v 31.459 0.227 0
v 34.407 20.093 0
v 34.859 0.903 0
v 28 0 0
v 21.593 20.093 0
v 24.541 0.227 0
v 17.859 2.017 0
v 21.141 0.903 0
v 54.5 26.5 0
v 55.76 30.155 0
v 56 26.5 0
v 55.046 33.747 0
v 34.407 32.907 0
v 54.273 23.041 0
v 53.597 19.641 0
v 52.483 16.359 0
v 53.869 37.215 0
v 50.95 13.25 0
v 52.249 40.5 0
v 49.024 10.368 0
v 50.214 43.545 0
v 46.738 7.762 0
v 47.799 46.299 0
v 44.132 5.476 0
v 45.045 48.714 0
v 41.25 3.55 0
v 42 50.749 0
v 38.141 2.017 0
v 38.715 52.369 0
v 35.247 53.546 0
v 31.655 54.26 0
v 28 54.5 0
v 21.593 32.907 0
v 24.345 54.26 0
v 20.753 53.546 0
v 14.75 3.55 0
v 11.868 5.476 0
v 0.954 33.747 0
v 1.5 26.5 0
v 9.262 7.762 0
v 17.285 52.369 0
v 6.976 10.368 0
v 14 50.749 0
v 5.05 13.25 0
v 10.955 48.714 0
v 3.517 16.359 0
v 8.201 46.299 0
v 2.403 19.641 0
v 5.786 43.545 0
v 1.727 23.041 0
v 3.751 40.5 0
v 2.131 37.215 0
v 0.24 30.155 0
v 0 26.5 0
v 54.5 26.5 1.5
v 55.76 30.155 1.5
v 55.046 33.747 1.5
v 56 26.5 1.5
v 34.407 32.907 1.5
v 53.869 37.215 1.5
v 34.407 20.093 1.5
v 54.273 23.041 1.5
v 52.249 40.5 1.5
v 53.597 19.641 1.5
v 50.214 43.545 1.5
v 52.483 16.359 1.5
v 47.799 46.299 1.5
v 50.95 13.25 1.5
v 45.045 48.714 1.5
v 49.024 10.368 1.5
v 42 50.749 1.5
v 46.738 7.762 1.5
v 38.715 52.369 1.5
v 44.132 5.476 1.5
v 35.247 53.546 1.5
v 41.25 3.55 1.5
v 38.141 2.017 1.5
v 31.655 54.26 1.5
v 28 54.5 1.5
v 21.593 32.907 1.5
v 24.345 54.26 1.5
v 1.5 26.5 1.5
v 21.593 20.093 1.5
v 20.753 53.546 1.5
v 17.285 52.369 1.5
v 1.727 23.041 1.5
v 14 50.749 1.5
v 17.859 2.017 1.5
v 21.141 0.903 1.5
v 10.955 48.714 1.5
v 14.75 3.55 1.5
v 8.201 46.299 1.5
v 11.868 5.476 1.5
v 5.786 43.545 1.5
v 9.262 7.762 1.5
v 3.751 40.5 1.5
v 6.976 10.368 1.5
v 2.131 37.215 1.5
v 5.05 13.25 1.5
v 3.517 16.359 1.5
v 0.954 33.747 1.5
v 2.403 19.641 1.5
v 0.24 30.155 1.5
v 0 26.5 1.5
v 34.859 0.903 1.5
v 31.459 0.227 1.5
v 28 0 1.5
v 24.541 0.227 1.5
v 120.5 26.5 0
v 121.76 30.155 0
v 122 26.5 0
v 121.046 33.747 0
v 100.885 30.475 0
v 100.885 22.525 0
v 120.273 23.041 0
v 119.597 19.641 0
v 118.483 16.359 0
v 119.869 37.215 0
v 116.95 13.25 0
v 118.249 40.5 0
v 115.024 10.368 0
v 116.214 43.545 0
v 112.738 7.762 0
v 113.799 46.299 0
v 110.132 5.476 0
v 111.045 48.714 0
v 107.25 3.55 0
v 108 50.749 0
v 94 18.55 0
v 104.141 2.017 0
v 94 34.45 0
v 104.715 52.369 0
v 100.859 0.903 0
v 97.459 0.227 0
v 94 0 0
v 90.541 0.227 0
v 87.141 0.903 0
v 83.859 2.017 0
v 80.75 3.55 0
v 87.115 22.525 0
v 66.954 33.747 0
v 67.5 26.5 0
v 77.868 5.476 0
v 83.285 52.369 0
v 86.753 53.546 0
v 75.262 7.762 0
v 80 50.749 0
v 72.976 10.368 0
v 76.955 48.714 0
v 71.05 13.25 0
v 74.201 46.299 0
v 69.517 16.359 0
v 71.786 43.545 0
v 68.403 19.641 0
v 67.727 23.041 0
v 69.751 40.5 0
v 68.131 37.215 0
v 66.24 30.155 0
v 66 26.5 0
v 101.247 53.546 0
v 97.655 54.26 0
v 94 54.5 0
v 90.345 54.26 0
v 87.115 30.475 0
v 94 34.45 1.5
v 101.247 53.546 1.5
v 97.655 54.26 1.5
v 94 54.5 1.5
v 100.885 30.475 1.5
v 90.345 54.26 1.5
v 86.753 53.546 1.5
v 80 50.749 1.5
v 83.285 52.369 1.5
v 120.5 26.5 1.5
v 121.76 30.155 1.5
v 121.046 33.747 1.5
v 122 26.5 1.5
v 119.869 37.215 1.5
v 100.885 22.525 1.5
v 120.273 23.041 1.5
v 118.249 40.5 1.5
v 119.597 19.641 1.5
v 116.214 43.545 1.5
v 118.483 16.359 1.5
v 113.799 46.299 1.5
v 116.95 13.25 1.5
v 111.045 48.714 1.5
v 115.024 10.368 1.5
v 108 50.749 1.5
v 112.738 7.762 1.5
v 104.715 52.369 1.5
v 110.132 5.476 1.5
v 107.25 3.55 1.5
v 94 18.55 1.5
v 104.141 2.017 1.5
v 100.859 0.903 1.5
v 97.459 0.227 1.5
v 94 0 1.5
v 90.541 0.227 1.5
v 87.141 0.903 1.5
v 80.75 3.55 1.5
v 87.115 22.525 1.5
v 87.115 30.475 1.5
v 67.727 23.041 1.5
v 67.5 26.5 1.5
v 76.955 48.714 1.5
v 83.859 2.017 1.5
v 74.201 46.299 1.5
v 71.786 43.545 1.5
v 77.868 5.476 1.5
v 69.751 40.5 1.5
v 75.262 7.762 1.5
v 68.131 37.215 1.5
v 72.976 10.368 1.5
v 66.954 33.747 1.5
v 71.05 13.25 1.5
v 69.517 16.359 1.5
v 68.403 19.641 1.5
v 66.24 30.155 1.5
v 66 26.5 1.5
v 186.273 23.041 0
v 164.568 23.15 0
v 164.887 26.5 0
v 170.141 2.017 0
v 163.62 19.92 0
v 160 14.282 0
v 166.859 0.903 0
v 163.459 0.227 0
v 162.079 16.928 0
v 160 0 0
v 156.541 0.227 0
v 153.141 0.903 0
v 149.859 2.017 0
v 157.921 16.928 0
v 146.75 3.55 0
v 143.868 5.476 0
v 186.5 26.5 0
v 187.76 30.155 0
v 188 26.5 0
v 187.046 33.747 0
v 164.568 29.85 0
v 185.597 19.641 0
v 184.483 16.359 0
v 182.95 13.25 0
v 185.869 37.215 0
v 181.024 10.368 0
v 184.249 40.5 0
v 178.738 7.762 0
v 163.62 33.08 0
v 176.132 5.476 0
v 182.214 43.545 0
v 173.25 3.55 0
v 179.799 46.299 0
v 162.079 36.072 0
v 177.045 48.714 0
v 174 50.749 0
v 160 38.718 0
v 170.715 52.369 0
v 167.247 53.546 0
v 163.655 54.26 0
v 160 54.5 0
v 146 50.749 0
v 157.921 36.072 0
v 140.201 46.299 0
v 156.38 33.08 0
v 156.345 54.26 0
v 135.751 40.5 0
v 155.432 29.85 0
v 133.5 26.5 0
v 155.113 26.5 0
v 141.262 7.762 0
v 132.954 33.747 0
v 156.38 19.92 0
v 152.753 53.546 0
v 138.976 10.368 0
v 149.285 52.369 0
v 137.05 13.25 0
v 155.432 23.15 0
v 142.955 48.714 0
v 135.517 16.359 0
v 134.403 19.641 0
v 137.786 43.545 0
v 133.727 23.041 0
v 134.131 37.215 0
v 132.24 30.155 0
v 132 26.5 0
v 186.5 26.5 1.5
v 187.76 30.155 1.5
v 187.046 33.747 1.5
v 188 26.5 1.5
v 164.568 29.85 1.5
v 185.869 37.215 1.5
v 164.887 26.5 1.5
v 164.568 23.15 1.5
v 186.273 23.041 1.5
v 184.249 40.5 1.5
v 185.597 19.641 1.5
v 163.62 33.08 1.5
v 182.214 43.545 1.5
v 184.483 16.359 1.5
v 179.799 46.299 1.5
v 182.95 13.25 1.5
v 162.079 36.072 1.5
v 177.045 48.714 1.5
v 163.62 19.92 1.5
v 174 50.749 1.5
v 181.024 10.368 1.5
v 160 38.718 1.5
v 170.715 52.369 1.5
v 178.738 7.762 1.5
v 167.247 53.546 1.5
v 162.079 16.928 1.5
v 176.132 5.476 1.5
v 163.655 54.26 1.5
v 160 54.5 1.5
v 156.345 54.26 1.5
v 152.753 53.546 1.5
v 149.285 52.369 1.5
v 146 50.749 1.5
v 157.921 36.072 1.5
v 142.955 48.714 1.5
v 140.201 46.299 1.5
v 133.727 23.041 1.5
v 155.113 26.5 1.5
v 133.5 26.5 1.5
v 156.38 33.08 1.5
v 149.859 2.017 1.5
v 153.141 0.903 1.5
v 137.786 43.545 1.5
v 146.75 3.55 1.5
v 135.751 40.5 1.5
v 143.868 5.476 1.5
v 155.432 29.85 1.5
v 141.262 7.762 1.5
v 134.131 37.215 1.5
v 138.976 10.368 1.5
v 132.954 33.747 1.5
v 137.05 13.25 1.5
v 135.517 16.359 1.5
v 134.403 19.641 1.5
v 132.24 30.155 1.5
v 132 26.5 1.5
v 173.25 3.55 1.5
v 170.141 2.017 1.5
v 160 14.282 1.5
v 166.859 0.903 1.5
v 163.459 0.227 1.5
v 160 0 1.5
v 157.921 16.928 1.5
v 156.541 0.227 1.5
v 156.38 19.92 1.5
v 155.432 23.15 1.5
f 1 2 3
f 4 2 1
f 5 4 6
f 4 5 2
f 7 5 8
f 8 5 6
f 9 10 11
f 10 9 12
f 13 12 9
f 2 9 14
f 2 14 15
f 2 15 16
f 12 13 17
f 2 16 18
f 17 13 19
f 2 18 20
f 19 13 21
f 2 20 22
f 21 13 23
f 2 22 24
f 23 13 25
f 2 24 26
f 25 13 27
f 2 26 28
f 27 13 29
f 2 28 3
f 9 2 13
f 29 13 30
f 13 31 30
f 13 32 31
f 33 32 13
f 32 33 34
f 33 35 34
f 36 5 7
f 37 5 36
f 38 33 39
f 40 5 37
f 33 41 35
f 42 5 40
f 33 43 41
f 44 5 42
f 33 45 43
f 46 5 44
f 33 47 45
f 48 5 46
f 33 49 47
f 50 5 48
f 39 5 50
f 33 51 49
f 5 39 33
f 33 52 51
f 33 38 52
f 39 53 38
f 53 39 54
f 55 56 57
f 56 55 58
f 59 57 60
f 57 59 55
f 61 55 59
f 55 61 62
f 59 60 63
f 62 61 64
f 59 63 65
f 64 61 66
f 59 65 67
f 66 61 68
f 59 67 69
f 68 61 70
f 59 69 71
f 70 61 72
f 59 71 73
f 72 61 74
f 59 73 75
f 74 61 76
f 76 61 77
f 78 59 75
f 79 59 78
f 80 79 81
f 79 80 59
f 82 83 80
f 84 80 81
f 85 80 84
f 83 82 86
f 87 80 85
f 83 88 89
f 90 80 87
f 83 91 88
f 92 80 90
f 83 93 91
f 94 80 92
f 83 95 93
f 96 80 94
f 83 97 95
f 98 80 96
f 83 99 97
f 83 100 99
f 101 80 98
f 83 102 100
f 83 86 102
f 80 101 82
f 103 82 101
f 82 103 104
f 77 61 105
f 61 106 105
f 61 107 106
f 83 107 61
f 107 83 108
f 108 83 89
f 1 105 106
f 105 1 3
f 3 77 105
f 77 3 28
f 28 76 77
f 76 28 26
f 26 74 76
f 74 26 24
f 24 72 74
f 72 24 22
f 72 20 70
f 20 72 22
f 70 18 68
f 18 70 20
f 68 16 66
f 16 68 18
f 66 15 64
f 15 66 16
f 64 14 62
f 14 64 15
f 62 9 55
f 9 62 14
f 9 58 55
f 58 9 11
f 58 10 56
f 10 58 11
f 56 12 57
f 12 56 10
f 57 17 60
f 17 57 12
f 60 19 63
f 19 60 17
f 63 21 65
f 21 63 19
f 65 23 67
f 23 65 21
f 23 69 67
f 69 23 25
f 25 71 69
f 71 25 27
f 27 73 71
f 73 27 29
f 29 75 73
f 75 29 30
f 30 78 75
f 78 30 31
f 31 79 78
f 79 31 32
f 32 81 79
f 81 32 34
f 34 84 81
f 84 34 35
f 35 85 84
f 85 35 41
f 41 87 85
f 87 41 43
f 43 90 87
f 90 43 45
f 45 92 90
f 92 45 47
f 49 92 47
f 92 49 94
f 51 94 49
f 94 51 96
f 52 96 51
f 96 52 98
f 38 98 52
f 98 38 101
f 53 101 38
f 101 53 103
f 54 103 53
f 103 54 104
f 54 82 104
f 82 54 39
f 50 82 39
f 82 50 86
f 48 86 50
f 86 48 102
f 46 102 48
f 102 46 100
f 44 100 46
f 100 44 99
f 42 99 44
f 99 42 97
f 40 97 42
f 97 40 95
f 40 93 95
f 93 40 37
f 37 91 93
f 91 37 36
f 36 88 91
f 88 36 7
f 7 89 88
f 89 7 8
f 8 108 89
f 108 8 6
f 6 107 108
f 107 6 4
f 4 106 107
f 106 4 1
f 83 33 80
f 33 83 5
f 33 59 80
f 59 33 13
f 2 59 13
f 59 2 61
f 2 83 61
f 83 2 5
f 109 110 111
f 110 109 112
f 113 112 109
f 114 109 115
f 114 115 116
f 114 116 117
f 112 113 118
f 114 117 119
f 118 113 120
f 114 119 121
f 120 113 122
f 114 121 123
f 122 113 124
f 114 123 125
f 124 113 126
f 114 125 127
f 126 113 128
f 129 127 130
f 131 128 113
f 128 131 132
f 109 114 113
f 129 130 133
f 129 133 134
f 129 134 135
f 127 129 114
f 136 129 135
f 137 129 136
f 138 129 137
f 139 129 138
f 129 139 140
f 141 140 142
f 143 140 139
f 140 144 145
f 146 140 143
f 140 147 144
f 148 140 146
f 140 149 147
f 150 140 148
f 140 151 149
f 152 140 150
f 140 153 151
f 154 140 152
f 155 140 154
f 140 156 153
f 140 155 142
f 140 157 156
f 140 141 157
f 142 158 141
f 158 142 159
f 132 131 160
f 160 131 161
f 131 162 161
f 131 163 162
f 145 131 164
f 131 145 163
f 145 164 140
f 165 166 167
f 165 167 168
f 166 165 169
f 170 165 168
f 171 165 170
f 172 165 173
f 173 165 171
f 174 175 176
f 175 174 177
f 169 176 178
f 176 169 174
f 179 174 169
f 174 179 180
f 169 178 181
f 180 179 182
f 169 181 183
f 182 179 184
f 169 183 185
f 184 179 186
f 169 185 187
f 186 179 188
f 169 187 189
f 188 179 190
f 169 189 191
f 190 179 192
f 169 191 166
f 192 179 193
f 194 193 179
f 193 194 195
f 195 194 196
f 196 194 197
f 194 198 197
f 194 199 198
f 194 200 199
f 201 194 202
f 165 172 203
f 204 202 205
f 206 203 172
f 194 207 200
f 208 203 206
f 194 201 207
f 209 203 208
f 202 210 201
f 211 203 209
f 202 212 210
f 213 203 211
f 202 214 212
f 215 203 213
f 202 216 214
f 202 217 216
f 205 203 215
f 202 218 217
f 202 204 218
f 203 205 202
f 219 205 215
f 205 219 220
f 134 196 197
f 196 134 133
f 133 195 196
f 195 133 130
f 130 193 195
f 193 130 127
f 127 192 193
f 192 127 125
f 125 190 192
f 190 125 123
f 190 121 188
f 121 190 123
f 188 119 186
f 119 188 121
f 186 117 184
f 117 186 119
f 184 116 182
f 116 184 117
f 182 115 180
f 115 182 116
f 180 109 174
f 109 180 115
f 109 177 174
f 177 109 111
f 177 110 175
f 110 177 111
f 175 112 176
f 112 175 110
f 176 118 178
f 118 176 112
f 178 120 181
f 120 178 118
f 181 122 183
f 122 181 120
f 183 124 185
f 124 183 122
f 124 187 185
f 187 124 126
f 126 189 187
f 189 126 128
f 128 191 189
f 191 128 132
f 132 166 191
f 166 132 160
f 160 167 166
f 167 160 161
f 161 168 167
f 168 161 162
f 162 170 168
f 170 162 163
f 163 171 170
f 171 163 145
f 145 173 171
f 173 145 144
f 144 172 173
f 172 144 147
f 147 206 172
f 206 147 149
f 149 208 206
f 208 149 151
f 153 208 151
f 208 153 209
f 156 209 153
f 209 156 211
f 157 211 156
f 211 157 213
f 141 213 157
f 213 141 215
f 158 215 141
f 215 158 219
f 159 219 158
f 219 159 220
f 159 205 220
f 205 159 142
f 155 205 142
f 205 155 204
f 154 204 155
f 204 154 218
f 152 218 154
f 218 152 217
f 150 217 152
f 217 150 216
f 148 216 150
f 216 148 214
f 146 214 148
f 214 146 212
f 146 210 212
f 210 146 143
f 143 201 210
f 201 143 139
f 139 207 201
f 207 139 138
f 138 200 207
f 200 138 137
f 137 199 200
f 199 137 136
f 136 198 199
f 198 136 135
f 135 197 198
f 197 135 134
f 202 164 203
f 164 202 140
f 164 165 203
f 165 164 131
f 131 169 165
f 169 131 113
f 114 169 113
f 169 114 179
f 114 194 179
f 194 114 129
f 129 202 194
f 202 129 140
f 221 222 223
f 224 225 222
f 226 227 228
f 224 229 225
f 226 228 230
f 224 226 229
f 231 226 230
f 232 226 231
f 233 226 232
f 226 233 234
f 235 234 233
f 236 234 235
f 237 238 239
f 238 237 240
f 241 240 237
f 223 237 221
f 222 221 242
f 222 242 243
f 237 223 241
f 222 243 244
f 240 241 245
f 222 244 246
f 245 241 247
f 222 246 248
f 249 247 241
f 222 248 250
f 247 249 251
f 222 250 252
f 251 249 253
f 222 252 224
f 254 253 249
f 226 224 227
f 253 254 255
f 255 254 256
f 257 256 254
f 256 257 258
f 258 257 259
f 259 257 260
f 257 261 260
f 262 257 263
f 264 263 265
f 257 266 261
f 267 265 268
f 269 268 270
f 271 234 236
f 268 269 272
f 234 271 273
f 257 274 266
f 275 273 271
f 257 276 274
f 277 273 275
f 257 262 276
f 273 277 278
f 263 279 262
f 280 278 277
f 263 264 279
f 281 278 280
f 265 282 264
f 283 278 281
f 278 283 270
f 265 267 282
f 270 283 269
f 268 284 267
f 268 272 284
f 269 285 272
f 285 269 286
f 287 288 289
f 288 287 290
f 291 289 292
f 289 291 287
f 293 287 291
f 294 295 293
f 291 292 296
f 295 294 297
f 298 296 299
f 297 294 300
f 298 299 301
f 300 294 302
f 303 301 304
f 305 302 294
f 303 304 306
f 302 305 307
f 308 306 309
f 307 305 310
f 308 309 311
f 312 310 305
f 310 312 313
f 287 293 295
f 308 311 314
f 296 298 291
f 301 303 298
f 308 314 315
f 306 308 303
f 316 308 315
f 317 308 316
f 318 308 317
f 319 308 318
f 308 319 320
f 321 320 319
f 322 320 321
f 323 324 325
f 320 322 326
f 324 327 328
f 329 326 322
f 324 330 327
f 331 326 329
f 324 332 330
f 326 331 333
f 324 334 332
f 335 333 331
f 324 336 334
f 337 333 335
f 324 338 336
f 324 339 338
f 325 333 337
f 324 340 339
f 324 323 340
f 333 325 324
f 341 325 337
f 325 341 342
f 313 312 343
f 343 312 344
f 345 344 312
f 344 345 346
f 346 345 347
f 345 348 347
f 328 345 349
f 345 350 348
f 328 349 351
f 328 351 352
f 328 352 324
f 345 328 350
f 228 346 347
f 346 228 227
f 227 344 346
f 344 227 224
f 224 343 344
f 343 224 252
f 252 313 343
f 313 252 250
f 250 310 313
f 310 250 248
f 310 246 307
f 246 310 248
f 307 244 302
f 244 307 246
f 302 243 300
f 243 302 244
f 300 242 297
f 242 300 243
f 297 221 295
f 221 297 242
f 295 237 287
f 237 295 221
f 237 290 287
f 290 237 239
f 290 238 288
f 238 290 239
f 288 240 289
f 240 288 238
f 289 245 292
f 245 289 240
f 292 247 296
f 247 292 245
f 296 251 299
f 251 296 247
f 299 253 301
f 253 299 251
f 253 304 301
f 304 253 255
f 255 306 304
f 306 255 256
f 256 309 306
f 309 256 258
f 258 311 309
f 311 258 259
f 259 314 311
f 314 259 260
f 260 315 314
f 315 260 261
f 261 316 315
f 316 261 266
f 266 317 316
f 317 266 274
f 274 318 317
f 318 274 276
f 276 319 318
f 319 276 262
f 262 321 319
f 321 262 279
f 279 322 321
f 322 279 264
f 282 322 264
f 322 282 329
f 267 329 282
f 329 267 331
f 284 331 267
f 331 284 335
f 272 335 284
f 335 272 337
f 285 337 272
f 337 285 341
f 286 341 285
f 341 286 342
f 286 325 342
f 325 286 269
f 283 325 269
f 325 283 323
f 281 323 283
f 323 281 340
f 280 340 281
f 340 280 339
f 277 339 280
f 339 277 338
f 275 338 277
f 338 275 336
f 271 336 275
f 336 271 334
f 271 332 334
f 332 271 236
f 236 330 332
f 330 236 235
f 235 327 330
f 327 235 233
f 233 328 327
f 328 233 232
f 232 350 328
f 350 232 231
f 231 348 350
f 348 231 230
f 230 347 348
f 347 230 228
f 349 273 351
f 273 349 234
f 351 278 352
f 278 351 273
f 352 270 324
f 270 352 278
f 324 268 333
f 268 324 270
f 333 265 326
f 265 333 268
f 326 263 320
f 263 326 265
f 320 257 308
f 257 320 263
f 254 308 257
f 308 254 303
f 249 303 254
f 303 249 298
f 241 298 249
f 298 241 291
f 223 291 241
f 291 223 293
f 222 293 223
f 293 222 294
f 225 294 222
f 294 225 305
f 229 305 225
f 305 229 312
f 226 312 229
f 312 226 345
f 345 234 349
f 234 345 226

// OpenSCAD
// Generated by scadwright. Do not hand-edit —
// edit the Python source and regenerate.

$fn = 48;

union() {
    translate([28, 26.5, 6.15]) {
        // SquareStop
        //  equiv_area_circle_dia = 14.46  (input)
        //  inner_diameter        = 53  (input)
        //  outer_diameter        = 56  (input)
        //  spacing               = -5.4  (input)
        //  thk                   = 1.5  (input)
        //  slot_bottom           = spacing - thk / 2 = -6.15
        //  target_area           = pi * equiv_area_circle_dia ** 2 / 4 = 164.22
        //  side                  = equiv_area_circle_dia * sqrt(pi) / 2 = 12.8148
        color("red") {
            translate([0, 0, -6.15]) {
                linear_extrude(height=1.5, center=false) {
                    difference() {
                        union() {
                            // Sector
                            //  angles = [0, 180]  (input)
                            //  r      = 28  (input)
                            intersection() {
                                circle(r=28);
                                polygon(points=[[0, 0], [56, 0], [3.42901e-15, 56], [-56, 6.85802e-15]]);
                            }
                            // Sector
                            //  angles = [180, 360]  (input)
                            //  r      = 26.5  (input)
                            intersection() {
                                circle(r=26.5);
                                polygon(points=[[0, 0], [-53, 6.49063e-15], [-9.73594e-15, -53], [53, -1.29813e-14]]);
                            }
                        }
                        square([12.8148, 12.8148], center=true);
                    }
                }
            }
        }
    }

    translate([94, 26.5, 6.15]) {
        // HexStop
        //  equiv_area_circle_dia = 14.46  (input)
        //  inner_diameter        = 53  (input)
        //  outer_diameter        = 56  (input)
        //  spacing               = -5.4  (input)
        //  thk                   = 1.5  (input)
        //  slot_bottom           = spacing - thk / 2 = -6.15
        //  target_area           = pi * equiv_area_circle_dia ** 2 / 4 = 164.22
        //  hex_r                 = equiv_area_circle_dia * sqrt(pi / (6 * sqrt(3))) = 7.95037
        color("red") {
            translate([0, 0, -6.15]) {
                linear_extrude(height=1.5, center=false) {
                    difference() {
                        union() {
                            // Sector
                            //  angles = [0, 180]  (input)
                            //  r      = 28  (input)
                            intersection() {
                                circle(r=28);
                                polygon(points=[[0, 0], [56, 0], [3.42901e-15, 56], [-56, 6.85802e-15]]);
                            }
                            // Sector
                            //  angles = [180, 360]  (input)
                            //  r      = 26.5  (input)
                            intersection() {
                                circle(r=26.5);
                                polygon(points=[[0, 0], [-53, 6.49063e-15], [-9.73594e-15, -53], [53, -1.29813e-14]]);
                            }
                        }
                        rotate([0, 0, 30]) {
                            polygon(points=[[7.95037, 0], [3.97518, 6.88522], [-3.97518, 6.88522], [-7.95037, 9.73639e-16], [-3.97518, -6.88522], [3.97518, -6.88522]]);
                        }
                    }
                }
            }
        }
    }

    translate([160, 26.5, 6.15]) {
        // AlmondStop
        //  equiv_area_circle_dia = 14.46  (input)
        //  inner_diameter        = 53  (input)
        //  outer_diameter        = 56  (input)
        //  spacing               = -5.4  (input)
        //  thk                   = 1.5  (input)
        //  aspect                = 2.5  (default)
        //  slot_bottom           = spacing - thk / 2 = -6.15
        //  target_area           = pi * equiv_area_circle_dia ** 2 / 4 = 164.22
        //  almond_seg_r          = (aspect ** 2 + 1) / 2 = 3.625
        //  almond_half           = asin(2 * aspect / (aspect ** 2 + 1)) = 43.6028
        //  almond_area_unit      = almond_seg_r ** 2 * (radians(2 * almond_half) - sin(2 * almond_half)) = 6.87537
        //  sag                   = sqrt(target_area / almond_area_unit) = 4.88726
        //  chord_r               = aspect * sag = 12.2181
        color("red") {
            translate([0, 0, -6.15]) {
                linear_extrude(height=1.5, center=false) {
                    difference() {
                        union() {
                            // Sector
                            //  angles = [0, 180]  (input)
                            //  r      = 28  (input)
                            intersection() {
                                circle(r=28);
                                polygon(points=[[0, 0], [56, 0], [3.42901e-15, 56], [-56, 6.85802e-15]]);
                            }
                            // Sector
                            //  angles = [180, 360]  (input)
                            //  r      = 26.5  (input)
                            intersection() {
                                circle(r=26.5);
                                polygon(points=[[0, 0], [-53, 6.49063e-15], [-9.73594e-15, -53], [53, -1.29813e-14]]);
                            }
                        }
                        rotate([0, 0, 90]) {
                            polygon(points=[[12.2181, 1.77636e-15], [9.57162, 2.07906], [6.57967, 3.62013], [3.35029, 4.56759], [0, 4.88726], [-3.35029, 4.56759], [-6.57967, 3.62013], [-9.57162, 2.07906], [-12.2181, -1.77636e-15], [-9.57162, -2.07906], [-6.57967, -3.62013], [-3.35029, -4.56759], [0, -4.88726], [3.35029, -4.56759], [6.57967, -3.62013], [9.57162, -2.07906]]);
                        }
                    }
                }
            }
        }
    }
}
